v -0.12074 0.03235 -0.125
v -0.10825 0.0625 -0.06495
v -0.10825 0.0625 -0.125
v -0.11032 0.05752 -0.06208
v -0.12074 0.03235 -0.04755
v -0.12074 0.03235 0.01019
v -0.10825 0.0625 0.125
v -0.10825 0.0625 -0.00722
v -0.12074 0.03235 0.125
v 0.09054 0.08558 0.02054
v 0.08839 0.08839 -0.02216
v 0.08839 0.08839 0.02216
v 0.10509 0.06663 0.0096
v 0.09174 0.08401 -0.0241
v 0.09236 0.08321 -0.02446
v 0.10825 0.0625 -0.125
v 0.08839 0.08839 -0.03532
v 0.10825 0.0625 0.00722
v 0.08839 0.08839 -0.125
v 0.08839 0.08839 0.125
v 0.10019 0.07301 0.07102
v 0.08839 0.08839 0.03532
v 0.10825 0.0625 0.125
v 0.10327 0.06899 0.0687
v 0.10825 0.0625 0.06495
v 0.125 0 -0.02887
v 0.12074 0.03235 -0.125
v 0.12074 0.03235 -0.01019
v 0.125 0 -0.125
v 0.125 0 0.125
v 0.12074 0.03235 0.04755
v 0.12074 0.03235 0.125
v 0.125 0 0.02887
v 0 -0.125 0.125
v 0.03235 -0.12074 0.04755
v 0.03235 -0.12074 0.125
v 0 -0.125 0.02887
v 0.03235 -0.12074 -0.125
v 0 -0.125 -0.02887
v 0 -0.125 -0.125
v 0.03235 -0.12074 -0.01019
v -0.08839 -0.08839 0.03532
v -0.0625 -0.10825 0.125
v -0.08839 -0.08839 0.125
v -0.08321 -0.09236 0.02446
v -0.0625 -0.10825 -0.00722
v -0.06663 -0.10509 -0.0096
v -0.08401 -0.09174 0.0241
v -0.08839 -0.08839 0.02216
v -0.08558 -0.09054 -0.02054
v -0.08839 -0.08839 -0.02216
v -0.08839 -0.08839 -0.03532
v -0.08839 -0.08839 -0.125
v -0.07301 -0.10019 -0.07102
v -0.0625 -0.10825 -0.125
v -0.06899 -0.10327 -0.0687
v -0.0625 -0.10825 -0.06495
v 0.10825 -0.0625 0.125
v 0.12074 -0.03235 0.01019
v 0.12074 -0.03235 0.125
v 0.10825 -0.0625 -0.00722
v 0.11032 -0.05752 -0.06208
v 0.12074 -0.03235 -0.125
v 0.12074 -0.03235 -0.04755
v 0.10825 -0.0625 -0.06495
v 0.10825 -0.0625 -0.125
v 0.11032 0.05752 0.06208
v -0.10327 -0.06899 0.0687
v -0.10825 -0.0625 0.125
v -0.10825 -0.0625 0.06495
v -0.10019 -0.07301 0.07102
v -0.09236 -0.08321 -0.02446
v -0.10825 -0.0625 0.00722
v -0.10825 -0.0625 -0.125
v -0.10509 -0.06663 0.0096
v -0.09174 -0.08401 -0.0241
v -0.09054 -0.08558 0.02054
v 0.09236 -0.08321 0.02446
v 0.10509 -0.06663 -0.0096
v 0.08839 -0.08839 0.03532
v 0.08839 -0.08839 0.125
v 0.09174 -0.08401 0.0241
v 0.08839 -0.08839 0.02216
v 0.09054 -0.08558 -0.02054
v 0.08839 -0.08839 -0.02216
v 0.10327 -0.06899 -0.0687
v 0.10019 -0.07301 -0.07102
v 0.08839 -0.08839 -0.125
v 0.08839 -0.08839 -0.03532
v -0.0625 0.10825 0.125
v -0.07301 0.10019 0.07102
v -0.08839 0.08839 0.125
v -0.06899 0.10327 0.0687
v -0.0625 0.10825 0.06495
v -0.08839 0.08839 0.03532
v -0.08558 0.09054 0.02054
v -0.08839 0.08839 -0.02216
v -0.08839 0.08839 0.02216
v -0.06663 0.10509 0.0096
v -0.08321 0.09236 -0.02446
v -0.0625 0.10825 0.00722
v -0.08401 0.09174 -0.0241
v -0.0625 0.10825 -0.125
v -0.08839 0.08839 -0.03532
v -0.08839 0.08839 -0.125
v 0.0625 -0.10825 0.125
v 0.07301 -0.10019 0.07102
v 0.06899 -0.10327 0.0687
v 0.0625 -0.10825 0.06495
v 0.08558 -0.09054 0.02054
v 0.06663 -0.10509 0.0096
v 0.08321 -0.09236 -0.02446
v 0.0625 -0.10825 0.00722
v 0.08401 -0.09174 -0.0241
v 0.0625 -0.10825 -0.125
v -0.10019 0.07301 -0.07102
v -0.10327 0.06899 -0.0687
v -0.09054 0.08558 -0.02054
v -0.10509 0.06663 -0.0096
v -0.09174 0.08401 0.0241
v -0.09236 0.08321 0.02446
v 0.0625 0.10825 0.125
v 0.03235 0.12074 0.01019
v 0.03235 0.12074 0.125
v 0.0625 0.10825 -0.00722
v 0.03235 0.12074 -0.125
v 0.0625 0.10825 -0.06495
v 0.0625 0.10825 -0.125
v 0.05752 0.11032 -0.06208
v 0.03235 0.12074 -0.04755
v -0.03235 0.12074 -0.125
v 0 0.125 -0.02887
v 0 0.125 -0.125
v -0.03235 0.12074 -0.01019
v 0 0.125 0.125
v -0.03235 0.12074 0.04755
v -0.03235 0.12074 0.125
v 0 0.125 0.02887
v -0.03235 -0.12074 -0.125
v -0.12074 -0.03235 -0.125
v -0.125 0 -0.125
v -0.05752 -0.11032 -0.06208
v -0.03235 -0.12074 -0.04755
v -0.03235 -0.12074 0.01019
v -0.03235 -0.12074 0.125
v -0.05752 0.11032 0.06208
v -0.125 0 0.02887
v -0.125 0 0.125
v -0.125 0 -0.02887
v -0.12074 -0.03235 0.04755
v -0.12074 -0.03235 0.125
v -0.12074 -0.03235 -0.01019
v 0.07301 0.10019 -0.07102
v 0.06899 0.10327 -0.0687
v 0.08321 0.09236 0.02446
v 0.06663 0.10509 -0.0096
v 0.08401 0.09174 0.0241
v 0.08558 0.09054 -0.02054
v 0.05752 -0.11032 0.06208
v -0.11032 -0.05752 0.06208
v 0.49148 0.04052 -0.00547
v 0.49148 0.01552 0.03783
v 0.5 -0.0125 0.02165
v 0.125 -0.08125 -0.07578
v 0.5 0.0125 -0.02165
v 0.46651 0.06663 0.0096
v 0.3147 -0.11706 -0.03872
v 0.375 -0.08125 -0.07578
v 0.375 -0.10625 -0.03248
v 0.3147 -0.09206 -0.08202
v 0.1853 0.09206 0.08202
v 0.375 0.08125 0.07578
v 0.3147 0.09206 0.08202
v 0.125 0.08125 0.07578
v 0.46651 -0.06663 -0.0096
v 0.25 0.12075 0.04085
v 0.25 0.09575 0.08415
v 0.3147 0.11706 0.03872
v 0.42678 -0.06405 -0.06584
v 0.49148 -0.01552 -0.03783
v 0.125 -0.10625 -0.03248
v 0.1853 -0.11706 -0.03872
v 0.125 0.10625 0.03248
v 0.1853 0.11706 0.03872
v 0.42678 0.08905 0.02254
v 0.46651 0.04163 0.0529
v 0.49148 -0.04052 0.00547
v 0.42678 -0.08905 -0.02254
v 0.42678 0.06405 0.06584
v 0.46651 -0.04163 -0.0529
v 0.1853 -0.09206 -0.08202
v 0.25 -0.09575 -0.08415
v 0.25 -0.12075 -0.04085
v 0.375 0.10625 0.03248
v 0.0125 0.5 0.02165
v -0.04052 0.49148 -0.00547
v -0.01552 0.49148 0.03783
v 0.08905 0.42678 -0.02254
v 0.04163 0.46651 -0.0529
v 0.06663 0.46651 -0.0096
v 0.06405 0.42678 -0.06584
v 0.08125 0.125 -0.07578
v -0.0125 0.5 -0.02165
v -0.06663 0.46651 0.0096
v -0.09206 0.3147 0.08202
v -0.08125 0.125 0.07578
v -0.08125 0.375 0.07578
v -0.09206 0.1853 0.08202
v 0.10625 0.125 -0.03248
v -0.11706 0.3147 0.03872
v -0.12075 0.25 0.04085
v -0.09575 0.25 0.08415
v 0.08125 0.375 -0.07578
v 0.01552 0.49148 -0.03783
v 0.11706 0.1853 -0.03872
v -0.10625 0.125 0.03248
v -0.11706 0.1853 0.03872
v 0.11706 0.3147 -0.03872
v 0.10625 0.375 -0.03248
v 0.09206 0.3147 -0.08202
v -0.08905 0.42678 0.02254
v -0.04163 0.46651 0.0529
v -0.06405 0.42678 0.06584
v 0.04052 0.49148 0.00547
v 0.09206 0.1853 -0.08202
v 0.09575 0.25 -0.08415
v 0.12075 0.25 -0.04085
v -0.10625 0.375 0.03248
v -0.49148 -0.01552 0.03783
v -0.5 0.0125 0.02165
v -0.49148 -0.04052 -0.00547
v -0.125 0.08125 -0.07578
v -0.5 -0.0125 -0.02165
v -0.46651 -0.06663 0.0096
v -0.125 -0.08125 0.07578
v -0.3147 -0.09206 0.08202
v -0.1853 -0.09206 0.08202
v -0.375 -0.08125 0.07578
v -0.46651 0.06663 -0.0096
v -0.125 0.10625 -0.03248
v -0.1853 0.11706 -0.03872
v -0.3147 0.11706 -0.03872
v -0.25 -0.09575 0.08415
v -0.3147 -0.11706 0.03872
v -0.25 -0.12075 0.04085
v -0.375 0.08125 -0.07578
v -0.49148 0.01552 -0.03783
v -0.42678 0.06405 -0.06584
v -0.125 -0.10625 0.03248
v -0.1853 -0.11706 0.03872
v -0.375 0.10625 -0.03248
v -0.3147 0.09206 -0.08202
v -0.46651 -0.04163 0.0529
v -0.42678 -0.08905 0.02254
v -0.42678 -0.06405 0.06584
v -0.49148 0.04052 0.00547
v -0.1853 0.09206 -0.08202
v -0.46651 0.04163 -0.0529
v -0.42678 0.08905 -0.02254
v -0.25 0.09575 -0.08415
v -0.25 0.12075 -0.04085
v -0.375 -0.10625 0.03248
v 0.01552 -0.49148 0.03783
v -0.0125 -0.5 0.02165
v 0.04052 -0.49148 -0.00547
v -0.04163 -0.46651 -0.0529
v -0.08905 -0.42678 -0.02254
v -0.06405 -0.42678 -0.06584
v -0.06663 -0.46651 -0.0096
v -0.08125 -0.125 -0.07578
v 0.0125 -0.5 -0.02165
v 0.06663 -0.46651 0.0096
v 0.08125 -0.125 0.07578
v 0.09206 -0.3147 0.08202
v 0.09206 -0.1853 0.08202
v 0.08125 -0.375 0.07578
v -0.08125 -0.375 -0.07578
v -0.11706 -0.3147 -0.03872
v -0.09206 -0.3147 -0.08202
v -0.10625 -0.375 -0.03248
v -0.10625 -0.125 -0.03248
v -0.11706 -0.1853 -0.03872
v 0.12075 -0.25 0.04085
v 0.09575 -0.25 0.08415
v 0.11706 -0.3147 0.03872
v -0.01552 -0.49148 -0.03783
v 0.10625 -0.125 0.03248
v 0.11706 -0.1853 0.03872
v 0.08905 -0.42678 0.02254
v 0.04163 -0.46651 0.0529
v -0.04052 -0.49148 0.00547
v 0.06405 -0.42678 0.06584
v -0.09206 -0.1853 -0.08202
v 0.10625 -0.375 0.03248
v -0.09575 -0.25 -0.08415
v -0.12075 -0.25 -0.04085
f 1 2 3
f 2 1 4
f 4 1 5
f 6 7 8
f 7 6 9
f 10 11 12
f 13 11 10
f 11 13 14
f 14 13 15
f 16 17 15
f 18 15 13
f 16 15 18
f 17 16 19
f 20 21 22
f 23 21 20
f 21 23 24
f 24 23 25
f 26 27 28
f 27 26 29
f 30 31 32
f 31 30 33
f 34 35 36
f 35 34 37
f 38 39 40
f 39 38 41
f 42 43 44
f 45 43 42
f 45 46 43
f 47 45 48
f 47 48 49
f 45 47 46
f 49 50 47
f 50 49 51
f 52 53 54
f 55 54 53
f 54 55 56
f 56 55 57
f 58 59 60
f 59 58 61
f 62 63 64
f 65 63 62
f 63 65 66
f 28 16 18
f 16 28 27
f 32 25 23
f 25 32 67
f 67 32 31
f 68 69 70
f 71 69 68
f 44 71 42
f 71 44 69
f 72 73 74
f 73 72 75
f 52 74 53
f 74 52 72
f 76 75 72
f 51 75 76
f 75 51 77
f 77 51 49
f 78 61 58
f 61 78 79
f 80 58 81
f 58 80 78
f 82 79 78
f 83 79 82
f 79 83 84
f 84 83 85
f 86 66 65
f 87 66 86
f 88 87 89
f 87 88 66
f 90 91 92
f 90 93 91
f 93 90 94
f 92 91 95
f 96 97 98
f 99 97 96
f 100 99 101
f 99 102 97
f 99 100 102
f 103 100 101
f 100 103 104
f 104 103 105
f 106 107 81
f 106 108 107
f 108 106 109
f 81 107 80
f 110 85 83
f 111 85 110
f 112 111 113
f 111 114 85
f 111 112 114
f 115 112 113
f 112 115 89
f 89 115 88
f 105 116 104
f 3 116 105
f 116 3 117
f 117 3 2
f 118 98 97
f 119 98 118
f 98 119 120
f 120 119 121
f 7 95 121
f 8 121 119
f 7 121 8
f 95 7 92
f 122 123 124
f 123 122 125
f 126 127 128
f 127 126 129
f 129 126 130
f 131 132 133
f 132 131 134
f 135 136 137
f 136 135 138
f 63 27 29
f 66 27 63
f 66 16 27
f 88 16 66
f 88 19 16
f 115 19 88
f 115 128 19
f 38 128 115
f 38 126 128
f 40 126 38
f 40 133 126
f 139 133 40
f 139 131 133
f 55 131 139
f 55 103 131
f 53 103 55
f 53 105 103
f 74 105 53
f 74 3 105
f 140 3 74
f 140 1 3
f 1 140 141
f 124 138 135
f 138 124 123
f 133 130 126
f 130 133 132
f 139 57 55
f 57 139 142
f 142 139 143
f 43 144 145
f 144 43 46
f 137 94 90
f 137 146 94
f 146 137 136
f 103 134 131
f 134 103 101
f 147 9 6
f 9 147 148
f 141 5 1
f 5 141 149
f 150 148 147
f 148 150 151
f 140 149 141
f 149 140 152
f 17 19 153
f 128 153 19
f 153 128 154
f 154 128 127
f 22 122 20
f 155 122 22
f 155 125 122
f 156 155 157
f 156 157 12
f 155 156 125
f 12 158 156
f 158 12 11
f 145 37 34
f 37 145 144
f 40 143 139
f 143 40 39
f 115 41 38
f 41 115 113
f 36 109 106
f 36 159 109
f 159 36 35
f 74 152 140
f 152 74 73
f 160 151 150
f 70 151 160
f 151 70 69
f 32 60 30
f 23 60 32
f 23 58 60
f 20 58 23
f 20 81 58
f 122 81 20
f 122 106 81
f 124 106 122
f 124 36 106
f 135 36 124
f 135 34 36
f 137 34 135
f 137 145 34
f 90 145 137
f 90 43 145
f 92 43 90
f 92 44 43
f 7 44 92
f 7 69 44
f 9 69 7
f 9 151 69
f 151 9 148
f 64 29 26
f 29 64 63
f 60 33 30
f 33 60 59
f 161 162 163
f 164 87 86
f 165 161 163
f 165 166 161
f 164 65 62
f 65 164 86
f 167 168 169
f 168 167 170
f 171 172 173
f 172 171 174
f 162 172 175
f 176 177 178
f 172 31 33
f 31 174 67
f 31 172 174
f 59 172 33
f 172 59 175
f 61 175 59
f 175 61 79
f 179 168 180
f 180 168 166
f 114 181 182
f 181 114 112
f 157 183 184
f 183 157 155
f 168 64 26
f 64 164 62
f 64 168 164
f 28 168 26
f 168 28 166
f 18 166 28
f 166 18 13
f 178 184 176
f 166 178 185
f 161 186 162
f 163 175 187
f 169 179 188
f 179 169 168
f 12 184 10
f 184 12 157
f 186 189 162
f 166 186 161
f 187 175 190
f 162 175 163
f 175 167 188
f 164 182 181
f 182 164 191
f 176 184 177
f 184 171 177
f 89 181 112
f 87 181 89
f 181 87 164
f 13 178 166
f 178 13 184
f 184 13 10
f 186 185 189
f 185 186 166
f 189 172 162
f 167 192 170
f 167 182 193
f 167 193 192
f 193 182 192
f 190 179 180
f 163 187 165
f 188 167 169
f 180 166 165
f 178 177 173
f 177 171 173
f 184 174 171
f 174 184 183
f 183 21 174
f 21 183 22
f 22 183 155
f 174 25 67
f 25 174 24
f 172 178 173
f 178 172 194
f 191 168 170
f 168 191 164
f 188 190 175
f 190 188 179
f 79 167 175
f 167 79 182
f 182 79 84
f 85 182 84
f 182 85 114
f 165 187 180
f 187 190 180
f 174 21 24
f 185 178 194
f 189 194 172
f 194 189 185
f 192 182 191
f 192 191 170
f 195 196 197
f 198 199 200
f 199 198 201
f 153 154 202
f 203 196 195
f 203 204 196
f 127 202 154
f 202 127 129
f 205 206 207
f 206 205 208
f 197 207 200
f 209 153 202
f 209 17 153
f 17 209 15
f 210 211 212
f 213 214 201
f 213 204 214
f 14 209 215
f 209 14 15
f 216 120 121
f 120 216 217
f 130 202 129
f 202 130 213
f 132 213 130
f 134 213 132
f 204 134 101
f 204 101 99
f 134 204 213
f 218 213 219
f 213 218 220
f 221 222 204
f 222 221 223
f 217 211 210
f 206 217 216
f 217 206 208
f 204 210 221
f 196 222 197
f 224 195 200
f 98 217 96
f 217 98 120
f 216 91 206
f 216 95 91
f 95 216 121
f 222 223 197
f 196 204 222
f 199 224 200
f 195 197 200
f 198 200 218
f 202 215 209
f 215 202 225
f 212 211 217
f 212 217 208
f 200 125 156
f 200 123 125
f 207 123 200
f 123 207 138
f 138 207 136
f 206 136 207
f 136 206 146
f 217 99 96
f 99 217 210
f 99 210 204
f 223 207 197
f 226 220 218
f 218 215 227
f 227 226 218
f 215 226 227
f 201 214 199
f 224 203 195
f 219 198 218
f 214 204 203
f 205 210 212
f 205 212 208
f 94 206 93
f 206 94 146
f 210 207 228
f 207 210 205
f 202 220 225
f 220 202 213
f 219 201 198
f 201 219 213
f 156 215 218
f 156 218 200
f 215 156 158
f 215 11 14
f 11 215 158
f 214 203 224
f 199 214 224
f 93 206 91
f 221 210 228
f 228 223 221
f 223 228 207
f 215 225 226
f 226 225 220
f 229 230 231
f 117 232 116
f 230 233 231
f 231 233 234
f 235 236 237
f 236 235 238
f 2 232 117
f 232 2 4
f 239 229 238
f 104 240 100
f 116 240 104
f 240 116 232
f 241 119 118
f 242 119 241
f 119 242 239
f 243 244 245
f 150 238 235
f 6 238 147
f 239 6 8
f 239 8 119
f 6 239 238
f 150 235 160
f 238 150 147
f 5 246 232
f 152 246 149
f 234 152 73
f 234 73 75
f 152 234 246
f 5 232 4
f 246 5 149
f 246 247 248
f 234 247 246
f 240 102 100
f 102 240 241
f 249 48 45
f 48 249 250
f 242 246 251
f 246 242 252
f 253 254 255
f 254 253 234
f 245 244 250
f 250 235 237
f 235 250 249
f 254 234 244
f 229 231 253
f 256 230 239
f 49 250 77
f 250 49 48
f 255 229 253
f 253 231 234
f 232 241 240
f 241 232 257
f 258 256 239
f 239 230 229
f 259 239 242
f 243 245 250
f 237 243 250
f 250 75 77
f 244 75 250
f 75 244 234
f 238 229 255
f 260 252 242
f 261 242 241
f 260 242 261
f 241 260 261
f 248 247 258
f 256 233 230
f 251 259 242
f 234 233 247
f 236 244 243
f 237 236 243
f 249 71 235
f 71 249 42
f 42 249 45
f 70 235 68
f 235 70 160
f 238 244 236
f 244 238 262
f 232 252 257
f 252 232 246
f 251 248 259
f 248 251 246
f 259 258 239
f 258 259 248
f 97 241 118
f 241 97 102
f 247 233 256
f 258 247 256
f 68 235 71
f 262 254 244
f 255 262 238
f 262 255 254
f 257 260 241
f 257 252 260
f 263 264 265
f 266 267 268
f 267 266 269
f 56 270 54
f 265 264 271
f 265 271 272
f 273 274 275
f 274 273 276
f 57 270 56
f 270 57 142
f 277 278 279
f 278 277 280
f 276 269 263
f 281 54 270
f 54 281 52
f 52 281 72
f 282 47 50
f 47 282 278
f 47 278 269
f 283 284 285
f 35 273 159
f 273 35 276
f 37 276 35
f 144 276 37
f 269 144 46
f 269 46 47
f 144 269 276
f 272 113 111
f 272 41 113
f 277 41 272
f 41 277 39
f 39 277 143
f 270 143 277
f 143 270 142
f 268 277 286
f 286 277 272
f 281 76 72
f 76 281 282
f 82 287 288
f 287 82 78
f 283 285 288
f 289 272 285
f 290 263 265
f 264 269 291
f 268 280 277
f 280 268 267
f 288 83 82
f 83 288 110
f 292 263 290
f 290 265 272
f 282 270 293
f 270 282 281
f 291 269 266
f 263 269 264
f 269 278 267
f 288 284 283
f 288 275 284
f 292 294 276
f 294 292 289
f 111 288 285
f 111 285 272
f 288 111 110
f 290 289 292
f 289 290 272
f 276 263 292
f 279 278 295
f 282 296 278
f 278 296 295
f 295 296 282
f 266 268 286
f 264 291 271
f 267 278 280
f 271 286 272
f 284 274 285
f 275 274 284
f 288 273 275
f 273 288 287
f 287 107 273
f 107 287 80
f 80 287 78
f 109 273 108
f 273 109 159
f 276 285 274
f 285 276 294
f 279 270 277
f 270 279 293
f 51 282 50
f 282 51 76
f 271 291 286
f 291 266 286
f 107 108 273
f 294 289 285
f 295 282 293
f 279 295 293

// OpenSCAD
// file: lib.scad
function x(v) = v[0];
function y(v) = v[1];
function z(v) = v[2];
function add(v1,v2) = [ for (i = [ 0 : len(v1)-1 ]) v1[i] + v2[i] ];
function xv(d) = [d,0,0];
function yv(d) = [0,d,0];
function zv(d) = [0,0,d];

module box(v) { cube(size=v, center=true); }
module cyl(r1,r2,h) { cylinder(r1=r1, r2=r2, h=h, center=true); }

function grow(n,v) = [x(v)+n*2, y(v)+n*2, z(v)+n*2];

module rbox(v, radius=1) {
	cx = x(v)/2-radius;
	cy = y(v)/2-radius;
	cz = z(v)/2-radius;

	hull() {
		translate([cx,cy,cz]) sphere(r=radius);
		translate([cx,cy,-cz]) sphere(r=radius);
		translate([cx,-cy,cz]) sphere(r=radius);
		translate([cx,-cy,-cz]) sphere(r=radius);
		translate([-cx,cy,cz]) sphere(r=radius);
		translate([-cx,cy,-cz]) sphere(r=radius);
		translate([-cx,-cy,cz]) sphere(r=radius);
		translate([-cx,-cy,-cz]) sphere(r=radius);
	}
}

module fillet(r=1) {
  minkowski() {
    difference() {
      children();
      minkowski() {
        difference() {
          minkowski() {
            children();
            sphere(r=r);
          }
          children();
        }
        sphere(r=r);
      }
    }
    sphere(r=r);
  }
}
// main file
use <lib.scad>

module blade() {
	translate([0.25,0,0]) rotate([30,0,0]) scale([2,1,1]) cyl(0.125, 0.125, 0.05, $fn=24);
}

union() {
	cyl(0.125, 0.125, 0.25, $fn=24);
	rotate([0,0,000]) blade();
	rotate([0,0,090]) blade();
	rotate([0,0,180]) blade();
	rotate([0,0,270]) blade();
}
